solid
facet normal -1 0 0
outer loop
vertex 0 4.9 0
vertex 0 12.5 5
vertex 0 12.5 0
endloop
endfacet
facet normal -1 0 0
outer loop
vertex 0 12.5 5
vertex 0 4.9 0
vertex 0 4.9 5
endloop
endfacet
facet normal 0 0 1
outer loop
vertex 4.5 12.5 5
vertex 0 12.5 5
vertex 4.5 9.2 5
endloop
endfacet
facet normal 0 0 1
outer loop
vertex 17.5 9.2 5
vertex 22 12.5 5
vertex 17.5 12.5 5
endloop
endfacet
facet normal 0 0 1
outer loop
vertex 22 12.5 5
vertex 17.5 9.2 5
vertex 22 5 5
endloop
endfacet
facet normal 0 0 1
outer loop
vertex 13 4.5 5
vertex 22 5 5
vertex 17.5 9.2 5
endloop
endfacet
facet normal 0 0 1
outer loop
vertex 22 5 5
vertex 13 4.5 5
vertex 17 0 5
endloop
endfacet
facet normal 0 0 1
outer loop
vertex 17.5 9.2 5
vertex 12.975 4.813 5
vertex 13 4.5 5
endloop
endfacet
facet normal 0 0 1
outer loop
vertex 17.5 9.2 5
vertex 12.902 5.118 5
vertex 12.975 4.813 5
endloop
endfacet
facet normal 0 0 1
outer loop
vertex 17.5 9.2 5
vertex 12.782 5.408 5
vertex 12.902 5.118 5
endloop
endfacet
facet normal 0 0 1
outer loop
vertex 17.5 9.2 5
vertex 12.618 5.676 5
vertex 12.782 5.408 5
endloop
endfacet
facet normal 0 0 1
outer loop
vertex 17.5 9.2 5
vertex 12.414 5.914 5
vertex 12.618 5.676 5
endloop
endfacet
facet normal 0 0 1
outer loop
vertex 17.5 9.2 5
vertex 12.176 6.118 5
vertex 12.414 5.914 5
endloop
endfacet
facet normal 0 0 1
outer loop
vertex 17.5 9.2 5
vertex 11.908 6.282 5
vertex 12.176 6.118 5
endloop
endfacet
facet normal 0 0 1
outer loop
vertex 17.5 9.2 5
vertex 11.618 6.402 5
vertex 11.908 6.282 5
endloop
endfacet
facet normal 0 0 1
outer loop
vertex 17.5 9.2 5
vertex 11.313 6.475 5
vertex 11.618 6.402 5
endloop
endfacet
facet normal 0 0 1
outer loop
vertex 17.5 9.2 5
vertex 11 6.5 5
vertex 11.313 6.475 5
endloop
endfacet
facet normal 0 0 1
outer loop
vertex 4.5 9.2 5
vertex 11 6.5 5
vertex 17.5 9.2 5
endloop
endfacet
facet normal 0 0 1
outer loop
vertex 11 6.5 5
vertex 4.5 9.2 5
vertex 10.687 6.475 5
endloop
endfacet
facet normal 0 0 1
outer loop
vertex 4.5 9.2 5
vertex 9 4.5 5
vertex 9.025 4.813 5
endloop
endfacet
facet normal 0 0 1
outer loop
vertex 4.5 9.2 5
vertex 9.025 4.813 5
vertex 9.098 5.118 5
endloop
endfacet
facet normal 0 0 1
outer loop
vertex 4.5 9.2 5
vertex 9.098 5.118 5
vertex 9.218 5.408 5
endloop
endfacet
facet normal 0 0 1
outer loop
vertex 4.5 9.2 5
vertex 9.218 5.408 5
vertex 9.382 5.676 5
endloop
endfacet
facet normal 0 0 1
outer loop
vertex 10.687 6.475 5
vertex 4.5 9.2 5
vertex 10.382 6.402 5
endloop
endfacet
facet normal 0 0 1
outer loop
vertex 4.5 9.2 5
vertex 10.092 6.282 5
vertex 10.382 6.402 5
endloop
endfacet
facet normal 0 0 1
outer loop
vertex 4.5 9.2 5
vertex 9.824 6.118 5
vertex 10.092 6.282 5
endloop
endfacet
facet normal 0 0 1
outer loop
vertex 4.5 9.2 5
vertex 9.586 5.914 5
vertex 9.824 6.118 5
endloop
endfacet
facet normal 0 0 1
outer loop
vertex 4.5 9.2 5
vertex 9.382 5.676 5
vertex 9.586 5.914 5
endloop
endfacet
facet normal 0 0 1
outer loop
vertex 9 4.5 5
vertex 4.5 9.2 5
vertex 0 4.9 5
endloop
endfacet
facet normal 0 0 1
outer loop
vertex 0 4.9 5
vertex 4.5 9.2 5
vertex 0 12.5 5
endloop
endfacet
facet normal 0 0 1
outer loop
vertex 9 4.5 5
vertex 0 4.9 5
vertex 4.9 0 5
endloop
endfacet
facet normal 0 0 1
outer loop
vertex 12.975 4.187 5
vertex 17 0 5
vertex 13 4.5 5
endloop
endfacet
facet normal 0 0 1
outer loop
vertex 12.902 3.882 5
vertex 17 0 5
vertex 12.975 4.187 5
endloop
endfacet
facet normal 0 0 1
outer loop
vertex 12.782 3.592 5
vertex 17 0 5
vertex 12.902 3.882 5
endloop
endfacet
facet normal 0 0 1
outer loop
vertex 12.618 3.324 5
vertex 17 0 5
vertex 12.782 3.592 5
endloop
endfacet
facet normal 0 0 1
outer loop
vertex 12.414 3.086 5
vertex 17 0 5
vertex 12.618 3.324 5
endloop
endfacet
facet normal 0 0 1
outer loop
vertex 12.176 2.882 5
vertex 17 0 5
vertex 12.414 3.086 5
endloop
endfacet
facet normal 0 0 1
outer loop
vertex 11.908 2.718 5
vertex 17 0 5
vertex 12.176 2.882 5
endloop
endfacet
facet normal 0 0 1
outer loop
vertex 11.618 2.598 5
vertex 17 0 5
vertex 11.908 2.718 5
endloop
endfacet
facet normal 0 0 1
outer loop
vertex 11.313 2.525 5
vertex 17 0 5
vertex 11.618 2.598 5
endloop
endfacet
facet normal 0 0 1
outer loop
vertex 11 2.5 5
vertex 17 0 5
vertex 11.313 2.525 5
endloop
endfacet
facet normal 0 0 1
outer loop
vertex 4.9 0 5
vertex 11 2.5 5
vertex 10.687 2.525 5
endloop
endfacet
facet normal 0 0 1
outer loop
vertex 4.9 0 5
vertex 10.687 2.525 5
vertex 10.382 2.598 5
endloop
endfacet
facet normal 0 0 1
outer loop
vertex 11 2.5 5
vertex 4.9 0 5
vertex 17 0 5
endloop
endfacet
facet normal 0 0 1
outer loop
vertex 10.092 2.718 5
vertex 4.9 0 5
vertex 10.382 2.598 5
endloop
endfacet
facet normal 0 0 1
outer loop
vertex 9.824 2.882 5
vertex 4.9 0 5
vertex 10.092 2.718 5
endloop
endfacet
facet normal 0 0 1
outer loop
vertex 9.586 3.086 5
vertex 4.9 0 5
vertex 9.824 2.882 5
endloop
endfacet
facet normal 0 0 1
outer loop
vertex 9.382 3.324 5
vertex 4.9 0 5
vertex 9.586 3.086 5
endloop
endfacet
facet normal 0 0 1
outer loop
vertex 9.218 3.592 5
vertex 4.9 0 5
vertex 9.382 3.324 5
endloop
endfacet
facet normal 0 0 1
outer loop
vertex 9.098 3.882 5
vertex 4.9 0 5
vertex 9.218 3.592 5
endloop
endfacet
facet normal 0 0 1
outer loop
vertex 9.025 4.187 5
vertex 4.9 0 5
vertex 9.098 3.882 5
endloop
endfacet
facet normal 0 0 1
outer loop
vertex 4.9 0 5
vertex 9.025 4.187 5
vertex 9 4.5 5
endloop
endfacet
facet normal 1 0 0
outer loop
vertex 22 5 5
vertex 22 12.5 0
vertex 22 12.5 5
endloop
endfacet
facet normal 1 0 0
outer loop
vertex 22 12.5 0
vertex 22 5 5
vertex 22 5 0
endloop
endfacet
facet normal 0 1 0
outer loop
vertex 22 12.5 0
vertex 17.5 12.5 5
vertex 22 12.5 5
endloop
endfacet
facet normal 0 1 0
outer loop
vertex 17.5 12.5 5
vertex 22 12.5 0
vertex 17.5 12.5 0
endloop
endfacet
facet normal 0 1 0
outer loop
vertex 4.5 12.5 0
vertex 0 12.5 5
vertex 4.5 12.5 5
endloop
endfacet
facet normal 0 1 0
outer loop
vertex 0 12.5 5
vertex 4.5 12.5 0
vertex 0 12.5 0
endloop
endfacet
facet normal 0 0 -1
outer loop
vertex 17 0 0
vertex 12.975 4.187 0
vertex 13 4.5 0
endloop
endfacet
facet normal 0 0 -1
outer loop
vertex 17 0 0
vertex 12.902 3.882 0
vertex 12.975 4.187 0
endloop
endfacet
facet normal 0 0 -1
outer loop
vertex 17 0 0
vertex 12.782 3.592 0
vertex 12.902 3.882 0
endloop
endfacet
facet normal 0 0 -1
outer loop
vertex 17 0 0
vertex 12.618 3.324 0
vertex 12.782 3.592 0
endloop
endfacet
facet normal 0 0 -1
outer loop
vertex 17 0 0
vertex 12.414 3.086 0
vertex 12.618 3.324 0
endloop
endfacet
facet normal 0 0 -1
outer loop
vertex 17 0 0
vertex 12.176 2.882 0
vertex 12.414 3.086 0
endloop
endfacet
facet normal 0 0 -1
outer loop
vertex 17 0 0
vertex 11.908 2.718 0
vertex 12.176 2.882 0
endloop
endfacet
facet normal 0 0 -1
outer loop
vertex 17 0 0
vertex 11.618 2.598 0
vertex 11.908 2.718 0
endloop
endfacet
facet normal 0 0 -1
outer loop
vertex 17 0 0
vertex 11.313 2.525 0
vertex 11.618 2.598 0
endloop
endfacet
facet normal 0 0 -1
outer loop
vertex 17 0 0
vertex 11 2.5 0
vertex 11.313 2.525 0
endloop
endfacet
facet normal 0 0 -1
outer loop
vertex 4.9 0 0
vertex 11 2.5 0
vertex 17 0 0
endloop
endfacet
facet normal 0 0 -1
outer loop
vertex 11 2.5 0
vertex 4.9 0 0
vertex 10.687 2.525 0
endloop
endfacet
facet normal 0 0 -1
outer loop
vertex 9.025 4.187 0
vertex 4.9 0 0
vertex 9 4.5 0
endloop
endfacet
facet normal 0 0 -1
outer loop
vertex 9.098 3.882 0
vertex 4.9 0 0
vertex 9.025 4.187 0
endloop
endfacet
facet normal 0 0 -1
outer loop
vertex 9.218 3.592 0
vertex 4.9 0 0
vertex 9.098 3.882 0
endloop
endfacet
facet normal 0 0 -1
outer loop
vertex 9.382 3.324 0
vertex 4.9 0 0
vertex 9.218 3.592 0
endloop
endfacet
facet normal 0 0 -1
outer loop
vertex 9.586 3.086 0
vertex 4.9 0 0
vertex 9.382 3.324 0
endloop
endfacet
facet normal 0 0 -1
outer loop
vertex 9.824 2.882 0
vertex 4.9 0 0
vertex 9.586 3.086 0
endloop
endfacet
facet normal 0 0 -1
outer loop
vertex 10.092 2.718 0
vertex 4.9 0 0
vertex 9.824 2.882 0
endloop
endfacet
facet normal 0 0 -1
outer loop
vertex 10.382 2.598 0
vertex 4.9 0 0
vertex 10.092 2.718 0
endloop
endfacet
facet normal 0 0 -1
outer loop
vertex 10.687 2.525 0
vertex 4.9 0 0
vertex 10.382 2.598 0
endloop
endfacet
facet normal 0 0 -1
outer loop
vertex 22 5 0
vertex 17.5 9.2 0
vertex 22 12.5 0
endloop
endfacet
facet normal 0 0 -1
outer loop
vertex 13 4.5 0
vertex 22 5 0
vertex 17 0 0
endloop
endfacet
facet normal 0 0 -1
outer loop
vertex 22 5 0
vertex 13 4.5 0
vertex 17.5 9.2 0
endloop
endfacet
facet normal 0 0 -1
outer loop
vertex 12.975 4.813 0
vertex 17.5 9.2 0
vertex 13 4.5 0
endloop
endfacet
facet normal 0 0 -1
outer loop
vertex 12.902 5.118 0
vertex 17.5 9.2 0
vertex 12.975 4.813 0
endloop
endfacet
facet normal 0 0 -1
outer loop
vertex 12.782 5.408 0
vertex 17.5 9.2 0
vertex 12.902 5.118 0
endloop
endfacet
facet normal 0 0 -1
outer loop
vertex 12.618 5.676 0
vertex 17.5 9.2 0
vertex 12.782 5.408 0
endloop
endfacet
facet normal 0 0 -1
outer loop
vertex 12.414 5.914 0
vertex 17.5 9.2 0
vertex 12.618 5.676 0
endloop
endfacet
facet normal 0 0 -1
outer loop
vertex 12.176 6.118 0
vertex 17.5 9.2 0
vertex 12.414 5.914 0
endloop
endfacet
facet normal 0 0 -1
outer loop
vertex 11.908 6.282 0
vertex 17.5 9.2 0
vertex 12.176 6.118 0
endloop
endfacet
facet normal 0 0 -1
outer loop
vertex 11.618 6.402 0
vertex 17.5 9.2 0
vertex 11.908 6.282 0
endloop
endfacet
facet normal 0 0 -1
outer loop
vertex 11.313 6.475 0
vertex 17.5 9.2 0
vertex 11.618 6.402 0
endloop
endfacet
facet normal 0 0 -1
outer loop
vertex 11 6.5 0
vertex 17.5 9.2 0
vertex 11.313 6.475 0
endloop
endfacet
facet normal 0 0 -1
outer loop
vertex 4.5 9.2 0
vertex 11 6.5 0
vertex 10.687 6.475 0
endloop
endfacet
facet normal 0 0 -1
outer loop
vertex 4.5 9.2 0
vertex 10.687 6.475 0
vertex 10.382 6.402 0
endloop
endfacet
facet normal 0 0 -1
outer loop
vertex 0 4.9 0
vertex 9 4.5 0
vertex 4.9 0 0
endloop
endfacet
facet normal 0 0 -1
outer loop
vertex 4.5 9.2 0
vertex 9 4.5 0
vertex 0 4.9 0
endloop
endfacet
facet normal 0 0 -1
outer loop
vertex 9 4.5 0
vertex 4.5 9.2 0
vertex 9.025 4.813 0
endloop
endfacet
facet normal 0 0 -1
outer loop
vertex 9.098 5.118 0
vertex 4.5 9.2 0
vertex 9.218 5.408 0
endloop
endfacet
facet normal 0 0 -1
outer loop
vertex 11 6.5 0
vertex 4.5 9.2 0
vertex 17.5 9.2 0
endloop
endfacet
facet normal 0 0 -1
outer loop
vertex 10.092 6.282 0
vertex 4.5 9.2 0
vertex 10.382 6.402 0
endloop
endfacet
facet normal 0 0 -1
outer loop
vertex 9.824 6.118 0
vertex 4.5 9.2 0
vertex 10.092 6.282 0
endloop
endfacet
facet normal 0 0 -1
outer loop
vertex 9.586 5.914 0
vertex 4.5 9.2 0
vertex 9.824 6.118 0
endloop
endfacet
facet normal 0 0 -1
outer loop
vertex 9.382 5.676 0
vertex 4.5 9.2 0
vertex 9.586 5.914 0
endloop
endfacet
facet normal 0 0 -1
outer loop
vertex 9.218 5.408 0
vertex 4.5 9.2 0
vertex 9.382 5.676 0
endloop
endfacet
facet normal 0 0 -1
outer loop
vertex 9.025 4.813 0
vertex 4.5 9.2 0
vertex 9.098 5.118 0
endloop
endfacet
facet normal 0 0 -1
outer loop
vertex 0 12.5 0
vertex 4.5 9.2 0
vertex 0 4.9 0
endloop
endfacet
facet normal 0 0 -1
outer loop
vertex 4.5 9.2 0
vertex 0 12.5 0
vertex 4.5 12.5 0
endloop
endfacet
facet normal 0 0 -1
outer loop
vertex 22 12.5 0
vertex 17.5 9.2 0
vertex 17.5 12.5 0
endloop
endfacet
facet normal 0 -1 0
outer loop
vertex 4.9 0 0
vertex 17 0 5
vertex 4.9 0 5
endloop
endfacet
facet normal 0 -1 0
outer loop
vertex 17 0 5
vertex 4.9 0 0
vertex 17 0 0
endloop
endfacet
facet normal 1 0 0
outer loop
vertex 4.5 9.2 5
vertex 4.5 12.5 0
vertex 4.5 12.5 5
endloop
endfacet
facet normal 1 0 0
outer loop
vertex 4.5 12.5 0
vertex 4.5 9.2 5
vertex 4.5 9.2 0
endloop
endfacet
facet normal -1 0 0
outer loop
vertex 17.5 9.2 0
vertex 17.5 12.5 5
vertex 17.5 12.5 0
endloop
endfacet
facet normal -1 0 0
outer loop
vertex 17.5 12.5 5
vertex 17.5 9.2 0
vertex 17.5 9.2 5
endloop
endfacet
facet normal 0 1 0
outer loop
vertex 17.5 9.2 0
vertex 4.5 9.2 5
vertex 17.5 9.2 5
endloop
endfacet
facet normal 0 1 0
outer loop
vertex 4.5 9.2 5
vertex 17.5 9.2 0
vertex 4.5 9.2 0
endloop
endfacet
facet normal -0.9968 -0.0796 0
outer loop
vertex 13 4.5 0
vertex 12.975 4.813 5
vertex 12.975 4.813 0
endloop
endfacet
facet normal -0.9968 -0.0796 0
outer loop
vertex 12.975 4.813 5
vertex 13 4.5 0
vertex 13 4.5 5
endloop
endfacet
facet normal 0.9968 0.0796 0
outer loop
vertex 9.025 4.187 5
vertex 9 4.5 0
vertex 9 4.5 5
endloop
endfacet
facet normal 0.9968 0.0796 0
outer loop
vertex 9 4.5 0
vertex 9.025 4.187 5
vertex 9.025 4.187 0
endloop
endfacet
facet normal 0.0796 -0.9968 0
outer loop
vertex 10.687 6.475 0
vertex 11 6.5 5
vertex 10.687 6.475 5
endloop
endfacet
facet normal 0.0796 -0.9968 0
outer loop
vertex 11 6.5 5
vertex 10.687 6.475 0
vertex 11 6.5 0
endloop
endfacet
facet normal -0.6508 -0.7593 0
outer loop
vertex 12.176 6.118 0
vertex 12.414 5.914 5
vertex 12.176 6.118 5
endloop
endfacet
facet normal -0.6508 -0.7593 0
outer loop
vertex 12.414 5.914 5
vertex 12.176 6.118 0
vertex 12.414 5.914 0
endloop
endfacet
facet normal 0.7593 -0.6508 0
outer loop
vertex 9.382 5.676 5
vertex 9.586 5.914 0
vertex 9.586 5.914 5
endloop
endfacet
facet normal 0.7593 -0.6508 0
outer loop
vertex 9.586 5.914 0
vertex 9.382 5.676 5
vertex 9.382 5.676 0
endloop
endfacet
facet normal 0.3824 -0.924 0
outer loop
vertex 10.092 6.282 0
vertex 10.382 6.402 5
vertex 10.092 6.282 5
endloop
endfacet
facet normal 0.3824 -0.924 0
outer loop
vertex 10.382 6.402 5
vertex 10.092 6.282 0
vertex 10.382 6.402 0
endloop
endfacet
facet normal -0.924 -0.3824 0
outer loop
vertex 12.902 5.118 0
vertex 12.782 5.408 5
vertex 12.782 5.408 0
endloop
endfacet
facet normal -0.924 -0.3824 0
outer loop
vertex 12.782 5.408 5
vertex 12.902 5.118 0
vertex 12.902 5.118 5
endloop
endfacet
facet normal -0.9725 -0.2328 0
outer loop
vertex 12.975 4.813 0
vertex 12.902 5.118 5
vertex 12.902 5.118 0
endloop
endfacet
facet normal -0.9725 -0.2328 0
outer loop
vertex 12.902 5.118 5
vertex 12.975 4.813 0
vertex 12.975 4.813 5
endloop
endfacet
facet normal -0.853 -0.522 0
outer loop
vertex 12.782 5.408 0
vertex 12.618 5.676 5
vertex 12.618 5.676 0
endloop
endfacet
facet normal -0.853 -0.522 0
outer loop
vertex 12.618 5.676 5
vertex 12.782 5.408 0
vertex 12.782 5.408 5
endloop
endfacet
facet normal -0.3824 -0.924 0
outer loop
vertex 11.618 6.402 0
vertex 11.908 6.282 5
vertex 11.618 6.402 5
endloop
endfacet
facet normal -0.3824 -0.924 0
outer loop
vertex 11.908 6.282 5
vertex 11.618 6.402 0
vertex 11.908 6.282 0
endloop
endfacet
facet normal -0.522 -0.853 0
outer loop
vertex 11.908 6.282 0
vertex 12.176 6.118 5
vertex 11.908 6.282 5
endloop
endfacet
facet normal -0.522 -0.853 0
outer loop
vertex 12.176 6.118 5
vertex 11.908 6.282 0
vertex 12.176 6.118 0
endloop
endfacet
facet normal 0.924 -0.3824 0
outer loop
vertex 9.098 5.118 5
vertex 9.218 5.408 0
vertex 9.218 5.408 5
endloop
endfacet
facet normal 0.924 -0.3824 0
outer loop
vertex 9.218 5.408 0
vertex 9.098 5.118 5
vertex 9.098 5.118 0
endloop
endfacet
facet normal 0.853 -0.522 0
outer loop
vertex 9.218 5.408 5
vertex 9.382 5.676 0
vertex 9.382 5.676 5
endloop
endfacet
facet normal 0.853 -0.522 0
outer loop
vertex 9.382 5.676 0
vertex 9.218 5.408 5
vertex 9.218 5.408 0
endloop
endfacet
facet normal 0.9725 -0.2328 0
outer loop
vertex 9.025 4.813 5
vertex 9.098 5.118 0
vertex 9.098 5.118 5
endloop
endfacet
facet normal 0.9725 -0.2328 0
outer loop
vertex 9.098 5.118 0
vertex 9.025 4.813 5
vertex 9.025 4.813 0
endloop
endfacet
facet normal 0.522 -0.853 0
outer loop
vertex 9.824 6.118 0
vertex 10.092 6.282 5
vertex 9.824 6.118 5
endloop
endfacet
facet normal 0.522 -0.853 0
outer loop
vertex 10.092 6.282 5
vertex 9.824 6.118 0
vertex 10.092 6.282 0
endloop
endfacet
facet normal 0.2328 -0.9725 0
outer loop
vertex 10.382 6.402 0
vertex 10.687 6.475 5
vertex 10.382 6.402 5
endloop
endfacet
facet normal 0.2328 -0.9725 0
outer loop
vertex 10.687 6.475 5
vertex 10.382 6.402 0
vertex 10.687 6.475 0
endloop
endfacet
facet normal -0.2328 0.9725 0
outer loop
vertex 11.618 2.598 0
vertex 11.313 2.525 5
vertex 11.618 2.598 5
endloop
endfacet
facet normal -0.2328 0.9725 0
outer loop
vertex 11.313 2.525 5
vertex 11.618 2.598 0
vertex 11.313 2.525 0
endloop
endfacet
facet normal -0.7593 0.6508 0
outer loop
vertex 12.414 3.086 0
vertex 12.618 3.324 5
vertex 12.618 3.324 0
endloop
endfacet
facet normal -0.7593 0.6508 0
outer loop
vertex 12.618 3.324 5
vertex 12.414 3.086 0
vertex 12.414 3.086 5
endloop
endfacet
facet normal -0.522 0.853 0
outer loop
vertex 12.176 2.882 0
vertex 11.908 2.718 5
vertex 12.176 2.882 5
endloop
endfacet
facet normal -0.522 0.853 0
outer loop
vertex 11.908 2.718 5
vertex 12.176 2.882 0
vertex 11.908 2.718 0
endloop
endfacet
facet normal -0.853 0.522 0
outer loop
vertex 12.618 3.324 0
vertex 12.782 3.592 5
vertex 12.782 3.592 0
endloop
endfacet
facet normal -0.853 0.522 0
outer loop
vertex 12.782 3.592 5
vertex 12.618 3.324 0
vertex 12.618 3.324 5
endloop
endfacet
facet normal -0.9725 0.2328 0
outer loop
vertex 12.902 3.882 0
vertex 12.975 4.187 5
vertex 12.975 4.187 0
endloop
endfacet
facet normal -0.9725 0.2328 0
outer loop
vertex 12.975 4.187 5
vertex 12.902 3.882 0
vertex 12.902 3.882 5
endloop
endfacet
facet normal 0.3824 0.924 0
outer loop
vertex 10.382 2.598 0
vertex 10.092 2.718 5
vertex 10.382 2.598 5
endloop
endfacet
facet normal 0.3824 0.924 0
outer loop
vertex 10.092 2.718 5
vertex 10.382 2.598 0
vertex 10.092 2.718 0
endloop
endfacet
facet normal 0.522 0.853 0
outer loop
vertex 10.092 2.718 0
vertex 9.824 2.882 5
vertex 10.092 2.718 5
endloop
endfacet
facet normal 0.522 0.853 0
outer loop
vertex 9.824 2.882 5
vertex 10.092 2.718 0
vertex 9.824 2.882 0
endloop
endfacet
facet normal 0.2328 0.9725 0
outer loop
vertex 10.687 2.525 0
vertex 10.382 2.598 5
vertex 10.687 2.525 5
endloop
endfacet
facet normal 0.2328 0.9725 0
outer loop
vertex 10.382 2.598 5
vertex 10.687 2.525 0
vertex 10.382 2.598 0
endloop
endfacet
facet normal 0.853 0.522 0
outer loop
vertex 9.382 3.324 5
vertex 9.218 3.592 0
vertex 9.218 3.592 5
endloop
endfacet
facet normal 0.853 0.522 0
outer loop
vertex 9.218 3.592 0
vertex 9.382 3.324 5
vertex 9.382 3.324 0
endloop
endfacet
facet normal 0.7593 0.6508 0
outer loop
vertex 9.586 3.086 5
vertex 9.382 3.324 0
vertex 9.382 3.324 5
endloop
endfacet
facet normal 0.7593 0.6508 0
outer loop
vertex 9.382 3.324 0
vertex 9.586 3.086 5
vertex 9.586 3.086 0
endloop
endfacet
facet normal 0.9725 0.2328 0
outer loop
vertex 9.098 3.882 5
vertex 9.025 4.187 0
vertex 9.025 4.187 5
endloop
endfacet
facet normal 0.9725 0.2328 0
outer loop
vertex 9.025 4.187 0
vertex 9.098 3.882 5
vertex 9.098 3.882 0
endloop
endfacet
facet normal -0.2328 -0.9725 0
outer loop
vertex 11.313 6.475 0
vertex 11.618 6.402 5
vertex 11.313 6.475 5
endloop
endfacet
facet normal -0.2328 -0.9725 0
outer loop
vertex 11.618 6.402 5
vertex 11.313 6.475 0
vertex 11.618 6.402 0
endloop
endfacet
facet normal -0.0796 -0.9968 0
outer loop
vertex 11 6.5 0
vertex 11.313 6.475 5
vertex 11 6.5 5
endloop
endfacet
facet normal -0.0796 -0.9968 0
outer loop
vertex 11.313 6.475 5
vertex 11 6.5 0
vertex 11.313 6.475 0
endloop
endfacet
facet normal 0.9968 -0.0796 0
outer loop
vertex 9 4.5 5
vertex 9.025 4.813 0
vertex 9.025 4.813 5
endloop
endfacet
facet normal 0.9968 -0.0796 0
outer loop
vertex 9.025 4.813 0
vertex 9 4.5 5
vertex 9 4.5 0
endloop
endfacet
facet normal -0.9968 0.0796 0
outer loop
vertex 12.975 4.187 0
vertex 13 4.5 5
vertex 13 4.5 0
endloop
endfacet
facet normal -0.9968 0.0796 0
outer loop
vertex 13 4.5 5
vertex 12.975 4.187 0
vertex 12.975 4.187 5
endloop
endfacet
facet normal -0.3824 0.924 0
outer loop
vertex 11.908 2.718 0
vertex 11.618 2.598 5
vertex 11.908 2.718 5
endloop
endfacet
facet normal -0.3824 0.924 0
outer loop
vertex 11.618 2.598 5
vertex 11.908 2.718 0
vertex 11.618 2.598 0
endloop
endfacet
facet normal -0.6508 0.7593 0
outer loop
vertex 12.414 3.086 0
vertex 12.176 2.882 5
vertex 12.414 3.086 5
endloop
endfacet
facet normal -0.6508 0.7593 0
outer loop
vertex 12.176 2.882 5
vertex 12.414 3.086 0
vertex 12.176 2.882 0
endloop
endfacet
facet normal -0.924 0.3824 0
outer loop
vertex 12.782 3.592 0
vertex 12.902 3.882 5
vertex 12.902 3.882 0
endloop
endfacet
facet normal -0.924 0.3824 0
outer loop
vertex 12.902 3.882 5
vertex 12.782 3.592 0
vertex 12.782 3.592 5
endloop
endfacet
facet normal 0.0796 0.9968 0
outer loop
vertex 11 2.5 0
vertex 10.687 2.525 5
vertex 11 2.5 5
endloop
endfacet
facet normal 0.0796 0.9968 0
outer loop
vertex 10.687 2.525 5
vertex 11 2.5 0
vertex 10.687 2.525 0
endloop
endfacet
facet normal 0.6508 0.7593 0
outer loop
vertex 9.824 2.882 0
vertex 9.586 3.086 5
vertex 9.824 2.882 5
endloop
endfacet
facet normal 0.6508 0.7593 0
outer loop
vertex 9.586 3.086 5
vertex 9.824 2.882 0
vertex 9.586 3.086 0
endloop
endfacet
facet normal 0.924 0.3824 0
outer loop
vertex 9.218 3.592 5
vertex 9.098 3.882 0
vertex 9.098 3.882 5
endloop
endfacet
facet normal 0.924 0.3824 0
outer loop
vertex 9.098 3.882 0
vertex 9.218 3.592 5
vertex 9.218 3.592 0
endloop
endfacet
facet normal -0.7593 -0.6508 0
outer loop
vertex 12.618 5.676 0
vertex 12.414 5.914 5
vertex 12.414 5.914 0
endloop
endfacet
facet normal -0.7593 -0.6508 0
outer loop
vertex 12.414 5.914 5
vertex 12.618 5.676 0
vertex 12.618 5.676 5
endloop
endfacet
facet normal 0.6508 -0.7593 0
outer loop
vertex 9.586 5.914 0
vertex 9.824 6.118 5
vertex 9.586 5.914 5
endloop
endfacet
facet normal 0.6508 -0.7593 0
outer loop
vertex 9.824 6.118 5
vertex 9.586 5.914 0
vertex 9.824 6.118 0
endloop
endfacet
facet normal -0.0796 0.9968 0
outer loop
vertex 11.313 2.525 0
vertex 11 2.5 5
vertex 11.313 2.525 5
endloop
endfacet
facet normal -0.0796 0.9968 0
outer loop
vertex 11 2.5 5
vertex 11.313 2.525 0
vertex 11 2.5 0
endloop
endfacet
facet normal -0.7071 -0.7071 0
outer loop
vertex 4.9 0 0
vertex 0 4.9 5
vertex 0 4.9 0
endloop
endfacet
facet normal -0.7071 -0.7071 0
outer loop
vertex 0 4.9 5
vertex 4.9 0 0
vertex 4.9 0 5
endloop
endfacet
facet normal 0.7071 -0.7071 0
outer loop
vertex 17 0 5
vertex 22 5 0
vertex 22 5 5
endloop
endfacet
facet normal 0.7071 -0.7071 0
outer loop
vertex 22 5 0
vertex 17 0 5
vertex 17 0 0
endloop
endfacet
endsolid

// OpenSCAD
//kossel 2020 linear rail bottom support piece

module railSupport(thickness = 5, screwDiam = 4, railWidth = 13, width = 22){
    difference(){
        cube([width,12.5,thickness]);
        
        // hole for rail to rest on
        translate([width/2-railWidth/2,9.2,-0.5]) cube([railWidth,10,thickness+1]);
        
        // screw hole
        translate([width/2,4.5,-0.5]) cylinder(d=screwDiam,h=thickness+1,$fn=40);
        
        translate([0,-5,-0.5]) rotate(45) cube([7,15,thickness+1]);
        mirror([0,1,0]) translate([width,-5,-0.5]) rotate(45) cube([7,15,thickness+1]);
    }
}
railSupport();
